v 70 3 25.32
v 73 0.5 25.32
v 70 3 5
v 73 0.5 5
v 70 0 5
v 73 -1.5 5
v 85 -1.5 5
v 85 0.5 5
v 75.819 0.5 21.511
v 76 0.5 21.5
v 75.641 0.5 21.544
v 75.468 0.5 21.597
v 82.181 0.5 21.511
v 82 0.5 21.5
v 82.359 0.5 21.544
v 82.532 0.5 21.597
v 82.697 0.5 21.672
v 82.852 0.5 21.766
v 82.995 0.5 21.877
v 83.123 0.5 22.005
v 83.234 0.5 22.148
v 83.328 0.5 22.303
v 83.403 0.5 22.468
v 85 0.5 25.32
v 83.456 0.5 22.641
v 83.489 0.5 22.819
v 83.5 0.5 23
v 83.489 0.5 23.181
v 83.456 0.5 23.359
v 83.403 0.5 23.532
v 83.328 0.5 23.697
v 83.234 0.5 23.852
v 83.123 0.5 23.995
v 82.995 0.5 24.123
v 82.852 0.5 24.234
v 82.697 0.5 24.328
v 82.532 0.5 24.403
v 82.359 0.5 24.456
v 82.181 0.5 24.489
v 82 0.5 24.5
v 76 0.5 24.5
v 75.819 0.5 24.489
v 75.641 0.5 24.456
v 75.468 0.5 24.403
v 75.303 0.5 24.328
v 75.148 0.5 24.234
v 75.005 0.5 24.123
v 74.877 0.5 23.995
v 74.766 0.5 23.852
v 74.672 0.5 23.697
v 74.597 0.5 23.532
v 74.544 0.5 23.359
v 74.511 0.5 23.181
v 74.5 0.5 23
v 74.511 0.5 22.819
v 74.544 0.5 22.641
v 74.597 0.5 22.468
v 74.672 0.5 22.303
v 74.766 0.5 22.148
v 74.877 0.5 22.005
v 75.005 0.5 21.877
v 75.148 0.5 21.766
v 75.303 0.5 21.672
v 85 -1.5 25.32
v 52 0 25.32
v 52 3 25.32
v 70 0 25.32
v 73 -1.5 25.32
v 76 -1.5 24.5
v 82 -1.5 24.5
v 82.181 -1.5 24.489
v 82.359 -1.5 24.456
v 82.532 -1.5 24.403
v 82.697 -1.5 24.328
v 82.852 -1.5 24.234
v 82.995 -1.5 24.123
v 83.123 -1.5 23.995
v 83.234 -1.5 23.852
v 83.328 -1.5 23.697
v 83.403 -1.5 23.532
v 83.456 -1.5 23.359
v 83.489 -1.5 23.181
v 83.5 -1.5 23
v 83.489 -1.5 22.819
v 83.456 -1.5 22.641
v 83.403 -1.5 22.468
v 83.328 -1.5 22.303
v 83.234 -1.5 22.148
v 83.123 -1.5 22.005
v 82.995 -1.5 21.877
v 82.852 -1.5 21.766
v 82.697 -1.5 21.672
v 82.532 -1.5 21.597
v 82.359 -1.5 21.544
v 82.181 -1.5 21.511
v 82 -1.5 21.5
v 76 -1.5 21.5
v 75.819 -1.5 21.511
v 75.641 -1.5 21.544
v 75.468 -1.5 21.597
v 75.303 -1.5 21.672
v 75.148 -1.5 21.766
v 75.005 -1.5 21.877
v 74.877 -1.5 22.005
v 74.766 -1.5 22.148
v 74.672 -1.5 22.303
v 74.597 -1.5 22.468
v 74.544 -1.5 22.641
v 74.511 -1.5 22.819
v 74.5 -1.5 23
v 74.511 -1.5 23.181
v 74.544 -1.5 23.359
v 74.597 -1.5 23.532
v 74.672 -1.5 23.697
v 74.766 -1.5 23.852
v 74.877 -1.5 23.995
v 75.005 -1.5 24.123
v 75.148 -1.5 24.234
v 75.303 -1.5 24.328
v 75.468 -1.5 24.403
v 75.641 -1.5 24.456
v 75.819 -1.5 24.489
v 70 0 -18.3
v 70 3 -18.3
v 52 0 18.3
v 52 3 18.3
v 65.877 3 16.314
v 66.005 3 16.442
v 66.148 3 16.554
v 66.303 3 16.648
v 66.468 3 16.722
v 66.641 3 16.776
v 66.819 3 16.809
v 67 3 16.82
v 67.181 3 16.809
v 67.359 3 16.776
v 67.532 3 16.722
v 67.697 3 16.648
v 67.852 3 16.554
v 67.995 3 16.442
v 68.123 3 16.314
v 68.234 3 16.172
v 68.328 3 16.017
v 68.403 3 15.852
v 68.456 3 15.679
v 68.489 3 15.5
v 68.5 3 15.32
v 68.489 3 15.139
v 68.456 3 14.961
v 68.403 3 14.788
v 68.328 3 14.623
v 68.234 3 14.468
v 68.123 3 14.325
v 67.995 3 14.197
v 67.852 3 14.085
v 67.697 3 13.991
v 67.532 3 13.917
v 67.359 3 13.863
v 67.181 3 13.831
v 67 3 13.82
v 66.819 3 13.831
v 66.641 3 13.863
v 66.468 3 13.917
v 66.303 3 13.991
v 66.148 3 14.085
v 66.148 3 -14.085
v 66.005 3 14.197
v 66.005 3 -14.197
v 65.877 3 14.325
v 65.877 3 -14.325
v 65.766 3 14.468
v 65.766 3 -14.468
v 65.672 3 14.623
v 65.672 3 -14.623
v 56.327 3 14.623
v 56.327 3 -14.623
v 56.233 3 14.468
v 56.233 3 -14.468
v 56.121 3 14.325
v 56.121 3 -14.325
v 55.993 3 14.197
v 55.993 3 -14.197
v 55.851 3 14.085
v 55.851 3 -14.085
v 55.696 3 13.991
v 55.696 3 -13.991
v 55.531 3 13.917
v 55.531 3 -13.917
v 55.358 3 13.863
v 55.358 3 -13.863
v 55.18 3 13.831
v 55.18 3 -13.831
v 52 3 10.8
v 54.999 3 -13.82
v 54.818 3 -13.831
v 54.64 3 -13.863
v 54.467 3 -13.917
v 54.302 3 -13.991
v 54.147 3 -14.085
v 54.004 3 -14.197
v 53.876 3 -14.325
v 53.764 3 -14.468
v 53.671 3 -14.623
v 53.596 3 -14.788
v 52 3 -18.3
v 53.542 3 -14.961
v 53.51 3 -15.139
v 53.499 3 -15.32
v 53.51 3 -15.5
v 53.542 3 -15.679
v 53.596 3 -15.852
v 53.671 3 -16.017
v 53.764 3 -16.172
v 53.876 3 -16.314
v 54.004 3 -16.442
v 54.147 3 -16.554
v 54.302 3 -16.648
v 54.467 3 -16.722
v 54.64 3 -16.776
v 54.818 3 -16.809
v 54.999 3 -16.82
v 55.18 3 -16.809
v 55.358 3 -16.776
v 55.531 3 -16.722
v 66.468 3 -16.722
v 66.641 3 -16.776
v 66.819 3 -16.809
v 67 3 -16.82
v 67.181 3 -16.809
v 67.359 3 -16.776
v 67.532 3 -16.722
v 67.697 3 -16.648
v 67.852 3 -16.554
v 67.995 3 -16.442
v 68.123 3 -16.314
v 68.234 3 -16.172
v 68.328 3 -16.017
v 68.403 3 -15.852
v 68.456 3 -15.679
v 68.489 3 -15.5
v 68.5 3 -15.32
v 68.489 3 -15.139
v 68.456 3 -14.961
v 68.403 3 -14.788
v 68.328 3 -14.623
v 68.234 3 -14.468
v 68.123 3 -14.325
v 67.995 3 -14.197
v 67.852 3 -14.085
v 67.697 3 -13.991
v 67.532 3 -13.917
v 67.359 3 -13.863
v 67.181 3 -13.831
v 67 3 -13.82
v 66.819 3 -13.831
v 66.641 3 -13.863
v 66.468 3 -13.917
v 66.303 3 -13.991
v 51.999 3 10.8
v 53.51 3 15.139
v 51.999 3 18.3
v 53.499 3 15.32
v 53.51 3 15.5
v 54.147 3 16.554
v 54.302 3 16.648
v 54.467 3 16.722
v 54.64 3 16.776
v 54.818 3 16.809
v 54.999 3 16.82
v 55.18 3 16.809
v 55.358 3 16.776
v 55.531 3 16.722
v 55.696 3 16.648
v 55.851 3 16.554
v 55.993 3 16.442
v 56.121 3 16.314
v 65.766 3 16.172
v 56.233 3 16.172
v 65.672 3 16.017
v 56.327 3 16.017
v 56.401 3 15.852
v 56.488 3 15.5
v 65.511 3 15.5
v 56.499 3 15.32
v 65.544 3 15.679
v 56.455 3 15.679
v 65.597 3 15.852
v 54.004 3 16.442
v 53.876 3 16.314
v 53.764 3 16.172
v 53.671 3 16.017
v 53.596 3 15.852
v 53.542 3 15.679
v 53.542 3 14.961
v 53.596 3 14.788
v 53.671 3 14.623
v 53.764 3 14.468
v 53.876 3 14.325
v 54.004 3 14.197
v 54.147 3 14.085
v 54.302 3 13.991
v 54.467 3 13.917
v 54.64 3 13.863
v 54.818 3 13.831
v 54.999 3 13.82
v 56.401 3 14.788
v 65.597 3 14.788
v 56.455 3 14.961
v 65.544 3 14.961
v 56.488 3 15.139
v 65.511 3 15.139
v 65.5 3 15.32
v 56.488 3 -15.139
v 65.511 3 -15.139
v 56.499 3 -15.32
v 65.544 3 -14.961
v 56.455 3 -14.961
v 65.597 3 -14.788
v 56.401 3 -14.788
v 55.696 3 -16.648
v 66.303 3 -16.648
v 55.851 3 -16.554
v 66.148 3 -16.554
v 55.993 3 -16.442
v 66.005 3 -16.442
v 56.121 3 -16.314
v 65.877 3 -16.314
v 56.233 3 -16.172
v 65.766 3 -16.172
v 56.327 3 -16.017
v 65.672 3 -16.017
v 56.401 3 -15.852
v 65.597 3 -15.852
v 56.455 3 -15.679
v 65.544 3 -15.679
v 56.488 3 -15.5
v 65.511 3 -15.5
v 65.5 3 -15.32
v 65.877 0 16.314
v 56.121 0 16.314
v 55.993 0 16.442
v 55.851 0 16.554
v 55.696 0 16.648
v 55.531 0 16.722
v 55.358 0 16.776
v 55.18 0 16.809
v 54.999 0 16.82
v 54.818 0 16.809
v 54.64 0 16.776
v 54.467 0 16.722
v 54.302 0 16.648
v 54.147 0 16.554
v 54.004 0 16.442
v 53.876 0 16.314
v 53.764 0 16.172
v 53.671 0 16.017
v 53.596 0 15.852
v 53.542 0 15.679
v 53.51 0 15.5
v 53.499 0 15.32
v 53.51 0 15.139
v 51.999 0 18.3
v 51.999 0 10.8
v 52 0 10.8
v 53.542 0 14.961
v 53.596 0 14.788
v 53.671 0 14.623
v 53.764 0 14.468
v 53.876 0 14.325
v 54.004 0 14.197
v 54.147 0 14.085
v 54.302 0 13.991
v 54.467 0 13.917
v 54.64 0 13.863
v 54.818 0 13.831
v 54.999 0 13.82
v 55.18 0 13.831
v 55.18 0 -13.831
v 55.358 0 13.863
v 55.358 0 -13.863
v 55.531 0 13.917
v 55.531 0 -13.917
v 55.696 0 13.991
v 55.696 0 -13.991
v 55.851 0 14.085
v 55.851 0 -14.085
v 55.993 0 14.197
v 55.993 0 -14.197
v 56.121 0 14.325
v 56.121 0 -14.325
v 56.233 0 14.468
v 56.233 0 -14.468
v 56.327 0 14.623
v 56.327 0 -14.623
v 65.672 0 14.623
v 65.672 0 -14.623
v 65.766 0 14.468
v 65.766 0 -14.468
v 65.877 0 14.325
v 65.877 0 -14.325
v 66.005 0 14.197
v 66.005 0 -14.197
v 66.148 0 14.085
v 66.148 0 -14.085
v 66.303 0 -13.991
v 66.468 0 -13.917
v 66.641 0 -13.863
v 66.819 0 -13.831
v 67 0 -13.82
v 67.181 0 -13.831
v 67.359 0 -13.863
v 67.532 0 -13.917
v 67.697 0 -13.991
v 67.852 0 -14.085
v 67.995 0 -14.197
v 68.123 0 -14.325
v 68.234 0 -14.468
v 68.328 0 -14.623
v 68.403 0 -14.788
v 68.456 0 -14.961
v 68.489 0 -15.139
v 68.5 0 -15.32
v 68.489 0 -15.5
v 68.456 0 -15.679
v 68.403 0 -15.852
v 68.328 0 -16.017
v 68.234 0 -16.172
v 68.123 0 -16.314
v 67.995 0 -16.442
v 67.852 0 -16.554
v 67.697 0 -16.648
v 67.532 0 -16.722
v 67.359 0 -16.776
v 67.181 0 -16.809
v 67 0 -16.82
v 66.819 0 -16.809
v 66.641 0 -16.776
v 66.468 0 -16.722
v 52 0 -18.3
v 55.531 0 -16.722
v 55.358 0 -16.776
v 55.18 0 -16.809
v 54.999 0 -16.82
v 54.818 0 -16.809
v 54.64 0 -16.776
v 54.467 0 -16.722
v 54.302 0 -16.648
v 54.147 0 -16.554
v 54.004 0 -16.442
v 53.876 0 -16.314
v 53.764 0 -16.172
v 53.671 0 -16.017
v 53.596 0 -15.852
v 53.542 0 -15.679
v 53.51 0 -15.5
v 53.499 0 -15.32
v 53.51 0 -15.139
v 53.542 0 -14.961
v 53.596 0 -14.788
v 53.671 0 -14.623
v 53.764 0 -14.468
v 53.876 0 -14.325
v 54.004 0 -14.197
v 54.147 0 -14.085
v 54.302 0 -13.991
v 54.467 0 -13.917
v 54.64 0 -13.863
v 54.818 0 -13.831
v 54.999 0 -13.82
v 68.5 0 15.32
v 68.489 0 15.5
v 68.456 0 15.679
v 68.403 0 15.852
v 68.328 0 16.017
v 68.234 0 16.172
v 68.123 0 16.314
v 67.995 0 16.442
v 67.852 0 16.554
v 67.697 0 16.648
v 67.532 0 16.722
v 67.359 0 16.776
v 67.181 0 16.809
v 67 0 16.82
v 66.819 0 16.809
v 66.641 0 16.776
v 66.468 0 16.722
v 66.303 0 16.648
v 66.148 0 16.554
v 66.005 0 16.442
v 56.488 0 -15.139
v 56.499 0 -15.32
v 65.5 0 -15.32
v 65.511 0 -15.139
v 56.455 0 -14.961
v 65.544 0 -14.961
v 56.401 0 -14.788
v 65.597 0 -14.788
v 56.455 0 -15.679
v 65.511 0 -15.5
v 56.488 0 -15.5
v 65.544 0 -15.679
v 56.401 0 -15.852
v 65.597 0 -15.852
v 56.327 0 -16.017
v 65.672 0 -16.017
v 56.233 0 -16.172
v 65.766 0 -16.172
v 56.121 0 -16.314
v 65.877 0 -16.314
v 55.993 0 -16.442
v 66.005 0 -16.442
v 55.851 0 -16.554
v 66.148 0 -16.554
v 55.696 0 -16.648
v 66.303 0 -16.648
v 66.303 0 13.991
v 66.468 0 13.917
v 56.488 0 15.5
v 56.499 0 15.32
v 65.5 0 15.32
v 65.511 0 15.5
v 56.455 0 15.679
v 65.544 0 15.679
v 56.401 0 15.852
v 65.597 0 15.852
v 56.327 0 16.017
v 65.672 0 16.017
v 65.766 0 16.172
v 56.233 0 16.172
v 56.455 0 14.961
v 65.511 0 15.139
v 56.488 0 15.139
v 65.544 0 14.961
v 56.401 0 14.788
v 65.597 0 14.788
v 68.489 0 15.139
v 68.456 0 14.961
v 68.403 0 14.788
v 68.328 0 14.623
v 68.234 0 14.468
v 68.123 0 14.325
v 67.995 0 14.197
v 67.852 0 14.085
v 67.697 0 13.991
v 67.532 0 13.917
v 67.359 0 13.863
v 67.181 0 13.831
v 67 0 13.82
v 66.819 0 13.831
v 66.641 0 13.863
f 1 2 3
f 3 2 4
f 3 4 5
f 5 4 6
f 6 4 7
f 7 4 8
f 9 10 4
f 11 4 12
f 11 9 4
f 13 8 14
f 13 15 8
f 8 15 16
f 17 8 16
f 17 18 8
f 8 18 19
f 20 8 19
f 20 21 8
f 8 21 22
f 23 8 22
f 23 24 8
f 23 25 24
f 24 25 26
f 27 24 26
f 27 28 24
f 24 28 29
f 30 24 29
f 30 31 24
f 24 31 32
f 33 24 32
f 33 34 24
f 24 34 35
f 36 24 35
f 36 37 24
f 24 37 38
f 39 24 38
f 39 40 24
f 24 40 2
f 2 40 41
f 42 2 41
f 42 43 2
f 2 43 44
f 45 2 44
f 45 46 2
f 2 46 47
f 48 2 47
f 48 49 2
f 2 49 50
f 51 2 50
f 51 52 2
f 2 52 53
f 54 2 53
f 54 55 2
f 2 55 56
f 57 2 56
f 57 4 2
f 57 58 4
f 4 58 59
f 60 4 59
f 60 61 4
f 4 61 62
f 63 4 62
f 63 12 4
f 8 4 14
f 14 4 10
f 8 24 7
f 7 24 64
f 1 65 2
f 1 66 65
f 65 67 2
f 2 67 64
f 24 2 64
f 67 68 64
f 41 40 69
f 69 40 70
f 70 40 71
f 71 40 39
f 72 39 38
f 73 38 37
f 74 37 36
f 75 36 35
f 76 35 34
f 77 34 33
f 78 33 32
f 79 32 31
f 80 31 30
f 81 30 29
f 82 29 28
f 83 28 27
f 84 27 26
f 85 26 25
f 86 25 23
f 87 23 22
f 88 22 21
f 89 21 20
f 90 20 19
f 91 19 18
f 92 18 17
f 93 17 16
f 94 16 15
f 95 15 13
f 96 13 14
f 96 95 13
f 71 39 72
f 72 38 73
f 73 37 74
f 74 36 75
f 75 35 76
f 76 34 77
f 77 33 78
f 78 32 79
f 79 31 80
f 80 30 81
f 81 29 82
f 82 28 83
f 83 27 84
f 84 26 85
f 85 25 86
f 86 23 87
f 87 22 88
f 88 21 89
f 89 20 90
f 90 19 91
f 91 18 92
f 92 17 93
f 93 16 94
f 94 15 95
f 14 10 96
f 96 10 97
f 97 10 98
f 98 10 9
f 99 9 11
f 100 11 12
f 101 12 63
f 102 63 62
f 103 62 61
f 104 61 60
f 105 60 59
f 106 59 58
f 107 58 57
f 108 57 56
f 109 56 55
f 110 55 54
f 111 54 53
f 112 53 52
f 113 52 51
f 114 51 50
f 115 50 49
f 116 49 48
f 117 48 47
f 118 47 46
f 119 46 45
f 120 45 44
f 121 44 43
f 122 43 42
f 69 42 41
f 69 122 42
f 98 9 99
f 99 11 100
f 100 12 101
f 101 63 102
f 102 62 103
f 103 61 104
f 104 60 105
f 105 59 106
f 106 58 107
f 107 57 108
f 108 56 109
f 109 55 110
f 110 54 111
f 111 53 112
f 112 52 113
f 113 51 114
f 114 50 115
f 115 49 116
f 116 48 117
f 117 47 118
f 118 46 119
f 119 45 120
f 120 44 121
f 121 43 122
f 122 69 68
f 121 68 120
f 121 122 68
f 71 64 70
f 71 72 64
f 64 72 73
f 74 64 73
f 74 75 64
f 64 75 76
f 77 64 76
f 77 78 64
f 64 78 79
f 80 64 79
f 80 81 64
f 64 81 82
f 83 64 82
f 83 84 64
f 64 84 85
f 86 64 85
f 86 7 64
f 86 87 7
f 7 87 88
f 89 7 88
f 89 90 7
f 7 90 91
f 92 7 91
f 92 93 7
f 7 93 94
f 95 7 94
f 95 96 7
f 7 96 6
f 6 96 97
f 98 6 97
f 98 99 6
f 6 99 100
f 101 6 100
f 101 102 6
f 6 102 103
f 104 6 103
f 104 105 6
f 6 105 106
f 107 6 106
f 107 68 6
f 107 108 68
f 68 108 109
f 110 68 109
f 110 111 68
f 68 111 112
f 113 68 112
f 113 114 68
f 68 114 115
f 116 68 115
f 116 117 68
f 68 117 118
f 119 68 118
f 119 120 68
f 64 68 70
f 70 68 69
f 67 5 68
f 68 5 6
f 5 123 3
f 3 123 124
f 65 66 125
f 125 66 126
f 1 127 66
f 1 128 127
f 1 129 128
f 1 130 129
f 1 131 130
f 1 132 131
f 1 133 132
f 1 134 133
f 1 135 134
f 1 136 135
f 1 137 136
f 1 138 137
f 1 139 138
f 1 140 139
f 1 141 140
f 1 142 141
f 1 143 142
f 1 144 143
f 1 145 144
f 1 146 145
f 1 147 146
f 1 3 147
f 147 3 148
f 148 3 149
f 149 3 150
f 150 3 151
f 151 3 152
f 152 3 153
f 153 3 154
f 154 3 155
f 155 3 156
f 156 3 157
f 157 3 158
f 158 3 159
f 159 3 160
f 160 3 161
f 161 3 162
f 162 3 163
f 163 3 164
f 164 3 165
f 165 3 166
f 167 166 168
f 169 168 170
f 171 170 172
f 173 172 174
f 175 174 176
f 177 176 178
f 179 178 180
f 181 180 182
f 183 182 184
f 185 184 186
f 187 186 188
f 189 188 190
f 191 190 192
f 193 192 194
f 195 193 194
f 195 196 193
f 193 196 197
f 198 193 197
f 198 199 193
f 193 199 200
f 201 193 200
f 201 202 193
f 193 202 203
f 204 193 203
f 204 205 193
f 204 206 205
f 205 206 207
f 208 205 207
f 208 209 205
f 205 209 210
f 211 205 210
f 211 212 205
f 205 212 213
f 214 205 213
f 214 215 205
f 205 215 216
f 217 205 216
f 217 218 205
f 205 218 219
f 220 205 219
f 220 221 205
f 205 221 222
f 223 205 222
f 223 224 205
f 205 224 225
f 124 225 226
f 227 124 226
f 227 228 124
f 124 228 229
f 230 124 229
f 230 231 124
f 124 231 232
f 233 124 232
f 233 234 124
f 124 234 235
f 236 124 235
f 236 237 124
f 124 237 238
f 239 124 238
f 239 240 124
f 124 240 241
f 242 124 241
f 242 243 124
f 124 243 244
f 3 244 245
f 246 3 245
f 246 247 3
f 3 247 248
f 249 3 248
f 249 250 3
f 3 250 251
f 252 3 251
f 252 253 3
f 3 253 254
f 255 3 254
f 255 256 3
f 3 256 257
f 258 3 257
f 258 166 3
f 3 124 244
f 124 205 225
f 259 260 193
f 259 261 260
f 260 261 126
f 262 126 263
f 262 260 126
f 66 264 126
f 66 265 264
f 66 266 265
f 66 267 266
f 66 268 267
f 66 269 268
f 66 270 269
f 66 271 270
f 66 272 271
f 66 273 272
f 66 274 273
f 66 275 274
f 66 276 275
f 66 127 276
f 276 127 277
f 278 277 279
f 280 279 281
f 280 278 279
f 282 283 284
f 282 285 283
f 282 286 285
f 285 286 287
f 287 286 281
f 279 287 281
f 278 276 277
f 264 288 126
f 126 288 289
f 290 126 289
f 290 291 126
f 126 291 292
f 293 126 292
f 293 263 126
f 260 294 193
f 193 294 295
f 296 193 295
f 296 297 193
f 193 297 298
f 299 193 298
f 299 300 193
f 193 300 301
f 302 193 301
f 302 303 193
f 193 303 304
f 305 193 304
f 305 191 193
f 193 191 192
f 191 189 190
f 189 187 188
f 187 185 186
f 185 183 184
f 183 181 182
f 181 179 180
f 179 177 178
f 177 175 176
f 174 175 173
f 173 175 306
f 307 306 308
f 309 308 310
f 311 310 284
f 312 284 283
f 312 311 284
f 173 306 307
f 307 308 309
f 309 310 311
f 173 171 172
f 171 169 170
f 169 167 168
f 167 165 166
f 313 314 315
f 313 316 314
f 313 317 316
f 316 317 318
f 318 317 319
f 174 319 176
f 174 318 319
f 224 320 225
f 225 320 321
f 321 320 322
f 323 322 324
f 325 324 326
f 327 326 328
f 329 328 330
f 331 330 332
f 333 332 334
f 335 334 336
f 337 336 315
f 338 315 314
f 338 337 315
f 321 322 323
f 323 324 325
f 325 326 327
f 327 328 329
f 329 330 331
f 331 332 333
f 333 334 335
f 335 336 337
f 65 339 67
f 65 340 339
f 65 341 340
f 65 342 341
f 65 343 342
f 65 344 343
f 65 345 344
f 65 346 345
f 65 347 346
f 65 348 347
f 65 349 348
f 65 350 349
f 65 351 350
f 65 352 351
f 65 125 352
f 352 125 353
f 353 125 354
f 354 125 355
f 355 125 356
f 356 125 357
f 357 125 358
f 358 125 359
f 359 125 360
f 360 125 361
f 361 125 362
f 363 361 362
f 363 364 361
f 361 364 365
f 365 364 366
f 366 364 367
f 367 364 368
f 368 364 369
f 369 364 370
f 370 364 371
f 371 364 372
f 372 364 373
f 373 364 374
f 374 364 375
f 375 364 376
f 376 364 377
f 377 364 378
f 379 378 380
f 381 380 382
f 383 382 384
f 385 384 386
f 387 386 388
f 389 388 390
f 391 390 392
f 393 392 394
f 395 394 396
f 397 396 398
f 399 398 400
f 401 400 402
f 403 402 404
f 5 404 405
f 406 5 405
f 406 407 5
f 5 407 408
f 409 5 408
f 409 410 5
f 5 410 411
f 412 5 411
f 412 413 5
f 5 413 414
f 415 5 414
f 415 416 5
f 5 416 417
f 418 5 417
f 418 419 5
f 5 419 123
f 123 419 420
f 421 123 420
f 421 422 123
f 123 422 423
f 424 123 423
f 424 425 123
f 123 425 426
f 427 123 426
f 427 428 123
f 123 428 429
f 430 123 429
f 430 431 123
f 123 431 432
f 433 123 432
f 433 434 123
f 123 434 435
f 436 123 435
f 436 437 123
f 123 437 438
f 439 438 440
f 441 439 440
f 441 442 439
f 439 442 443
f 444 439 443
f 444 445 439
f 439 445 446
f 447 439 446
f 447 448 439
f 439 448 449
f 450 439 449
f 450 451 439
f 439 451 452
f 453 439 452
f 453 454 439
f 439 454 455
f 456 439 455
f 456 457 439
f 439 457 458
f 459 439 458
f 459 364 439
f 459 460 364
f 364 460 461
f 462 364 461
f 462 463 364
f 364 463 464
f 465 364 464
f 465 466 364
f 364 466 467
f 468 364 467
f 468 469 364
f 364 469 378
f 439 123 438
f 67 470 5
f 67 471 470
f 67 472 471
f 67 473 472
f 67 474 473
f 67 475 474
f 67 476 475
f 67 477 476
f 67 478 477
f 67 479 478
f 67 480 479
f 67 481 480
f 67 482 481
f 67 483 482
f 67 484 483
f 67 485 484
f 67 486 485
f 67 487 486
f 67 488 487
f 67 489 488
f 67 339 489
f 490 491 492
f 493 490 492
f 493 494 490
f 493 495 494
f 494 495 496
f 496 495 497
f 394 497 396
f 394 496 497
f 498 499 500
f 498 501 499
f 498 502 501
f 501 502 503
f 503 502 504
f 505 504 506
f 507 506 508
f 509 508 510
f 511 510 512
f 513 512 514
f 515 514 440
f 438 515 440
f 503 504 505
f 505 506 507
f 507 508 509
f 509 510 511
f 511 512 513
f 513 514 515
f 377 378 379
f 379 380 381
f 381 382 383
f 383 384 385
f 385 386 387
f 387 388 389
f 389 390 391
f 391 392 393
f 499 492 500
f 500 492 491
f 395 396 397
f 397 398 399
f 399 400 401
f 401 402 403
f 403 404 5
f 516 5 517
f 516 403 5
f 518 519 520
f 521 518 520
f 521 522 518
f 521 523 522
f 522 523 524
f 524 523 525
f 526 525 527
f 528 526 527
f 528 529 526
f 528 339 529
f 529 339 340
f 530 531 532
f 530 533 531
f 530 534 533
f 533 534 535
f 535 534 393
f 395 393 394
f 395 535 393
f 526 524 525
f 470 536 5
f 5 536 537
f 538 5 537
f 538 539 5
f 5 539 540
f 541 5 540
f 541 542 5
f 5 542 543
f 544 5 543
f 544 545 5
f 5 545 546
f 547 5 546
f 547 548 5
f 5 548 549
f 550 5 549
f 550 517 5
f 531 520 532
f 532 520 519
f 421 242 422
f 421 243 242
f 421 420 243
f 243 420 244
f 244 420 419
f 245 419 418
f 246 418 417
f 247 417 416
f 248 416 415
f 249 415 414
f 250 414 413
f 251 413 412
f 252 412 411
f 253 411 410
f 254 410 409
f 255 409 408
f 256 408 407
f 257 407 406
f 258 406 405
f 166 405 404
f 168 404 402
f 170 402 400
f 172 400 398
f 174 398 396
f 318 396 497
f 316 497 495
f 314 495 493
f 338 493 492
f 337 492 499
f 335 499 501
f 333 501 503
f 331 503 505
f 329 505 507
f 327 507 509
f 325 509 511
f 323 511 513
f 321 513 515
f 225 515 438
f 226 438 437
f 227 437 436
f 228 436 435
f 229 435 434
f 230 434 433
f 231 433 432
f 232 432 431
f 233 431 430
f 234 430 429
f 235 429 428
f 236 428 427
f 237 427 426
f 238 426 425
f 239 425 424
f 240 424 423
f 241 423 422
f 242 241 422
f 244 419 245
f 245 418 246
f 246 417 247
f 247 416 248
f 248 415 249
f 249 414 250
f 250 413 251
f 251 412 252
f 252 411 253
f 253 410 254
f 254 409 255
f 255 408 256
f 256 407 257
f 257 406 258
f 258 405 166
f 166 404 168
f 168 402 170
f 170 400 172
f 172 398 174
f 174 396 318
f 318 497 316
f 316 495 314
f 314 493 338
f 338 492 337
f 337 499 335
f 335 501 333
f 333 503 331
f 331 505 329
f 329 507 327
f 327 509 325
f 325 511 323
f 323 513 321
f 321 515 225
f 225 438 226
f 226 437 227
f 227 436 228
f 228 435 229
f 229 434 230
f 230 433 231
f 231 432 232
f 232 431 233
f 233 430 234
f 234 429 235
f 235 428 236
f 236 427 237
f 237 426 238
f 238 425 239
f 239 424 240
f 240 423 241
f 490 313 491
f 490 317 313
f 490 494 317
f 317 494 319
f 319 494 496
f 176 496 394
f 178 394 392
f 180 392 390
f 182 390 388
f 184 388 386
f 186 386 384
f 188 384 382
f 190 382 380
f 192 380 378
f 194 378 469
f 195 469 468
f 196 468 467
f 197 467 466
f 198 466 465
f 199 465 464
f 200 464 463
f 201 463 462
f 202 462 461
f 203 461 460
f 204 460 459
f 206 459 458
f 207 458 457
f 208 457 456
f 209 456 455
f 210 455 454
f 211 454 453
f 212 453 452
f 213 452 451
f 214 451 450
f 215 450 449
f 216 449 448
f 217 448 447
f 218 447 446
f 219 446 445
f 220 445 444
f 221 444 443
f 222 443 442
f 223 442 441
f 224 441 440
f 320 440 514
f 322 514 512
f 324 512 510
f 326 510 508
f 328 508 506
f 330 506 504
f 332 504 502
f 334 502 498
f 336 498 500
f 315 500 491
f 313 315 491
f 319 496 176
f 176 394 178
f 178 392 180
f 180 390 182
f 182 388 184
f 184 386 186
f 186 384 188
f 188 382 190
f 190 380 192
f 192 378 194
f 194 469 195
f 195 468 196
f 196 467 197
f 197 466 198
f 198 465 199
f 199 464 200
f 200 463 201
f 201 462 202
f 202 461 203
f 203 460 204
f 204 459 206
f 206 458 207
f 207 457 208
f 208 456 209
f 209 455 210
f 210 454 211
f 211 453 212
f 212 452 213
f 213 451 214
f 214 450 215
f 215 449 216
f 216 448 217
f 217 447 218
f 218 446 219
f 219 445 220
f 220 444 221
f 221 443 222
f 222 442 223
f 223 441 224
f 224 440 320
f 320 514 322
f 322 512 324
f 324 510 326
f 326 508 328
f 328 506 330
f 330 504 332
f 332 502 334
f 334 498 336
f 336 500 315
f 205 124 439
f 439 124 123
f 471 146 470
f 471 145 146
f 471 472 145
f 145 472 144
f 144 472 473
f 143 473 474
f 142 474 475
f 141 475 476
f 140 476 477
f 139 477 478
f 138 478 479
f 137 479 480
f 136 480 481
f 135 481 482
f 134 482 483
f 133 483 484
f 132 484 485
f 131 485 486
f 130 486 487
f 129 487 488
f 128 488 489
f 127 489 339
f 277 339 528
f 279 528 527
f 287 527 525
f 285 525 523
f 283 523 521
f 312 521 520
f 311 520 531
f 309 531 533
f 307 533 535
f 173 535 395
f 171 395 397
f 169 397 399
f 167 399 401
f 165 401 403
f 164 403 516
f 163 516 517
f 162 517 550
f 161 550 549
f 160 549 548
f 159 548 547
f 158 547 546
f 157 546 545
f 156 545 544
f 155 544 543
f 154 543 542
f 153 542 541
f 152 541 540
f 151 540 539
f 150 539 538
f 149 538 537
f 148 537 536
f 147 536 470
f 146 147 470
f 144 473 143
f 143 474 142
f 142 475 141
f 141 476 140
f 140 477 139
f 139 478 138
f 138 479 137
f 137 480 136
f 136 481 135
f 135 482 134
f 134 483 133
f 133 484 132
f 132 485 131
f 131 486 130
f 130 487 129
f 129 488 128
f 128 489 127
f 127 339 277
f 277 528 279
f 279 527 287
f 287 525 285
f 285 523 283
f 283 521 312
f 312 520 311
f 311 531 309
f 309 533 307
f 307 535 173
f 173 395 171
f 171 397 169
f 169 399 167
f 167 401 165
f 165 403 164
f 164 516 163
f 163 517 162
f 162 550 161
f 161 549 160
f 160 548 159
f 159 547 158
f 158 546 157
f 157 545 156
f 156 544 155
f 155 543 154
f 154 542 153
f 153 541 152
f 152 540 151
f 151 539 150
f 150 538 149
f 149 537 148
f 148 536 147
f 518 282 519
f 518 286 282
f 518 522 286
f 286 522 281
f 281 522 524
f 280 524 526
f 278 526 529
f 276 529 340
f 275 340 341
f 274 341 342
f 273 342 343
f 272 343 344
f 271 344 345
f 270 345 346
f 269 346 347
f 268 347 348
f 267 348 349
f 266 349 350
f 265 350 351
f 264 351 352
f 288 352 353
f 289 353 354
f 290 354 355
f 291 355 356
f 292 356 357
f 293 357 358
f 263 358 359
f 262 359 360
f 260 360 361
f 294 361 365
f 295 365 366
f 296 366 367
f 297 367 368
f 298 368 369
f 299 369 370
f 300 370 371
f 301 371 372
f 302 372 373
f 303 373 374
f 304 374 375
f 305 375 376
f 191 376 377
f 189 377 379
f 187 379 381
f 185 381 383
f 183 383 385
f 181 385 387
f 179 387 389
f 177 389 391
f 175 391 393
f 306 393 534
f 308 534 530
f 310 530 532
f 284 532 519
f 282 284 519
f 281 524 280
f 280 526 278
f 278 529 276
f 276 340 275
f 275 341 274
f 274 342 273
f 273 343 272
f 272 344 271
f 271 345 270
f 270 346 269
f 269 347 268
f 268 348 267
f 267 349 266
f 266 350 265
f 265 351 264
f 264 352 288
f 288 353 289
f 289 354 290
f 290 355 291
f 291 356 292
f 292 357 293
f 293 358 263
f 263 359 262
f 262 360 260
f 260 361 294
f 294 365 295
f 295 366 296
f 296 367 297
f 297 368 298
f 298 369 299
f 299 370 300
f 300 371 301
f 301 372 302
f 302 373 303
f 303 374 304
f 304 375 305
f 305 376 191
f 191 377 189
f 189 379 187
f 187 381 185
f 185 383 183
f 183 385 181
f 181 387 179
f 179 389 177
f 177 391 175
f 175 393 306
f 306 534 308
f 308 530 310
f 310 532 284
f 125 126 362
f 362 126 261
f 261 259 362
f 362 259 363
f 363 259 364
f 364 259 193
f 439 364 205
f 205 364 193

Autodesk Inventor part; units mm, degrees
sketch "Sketch1" plane through (0, 0, 0) normal (0, 1, 0) x (-1, 0, 0)
  line L0 (70, 0) -> (70, -70)
  line L1 (70, -70) -> (0, -70)
  line L2 (-70, 0) -> (-70, 70)
  line L3 (-70, 70) -> (0, 70)
  line L4 (0, 70) -> (70, 70)
  line L5 (70, 70) -> (70, 0)
  line L6 (0, -70) -> (-70, -70)
  line L7 (-70, -70) -> (-70, 0)
  point P0 (0, 0)
extrude "Extrusion1" add sketch "Sketch1" along normal blind 3
fillet "Fillet1" radius 5 3 edges at (70, 1.5, 70) (70, 1.5, -70) (-70, 1.5, 70)
fillet "Fillet2" radius 5 1 edges at (-70, 1.5, -70)
ref_plane "Work Plane1" through (65, 0, 65) normal (1, 0, 0) x (0, 0, -1)
sketch "Sketch6" plane through (70, 0, 65) normal (1, 0, 0) x (0, 0, -1)
  line L0 (65, 0) -> (57.2, 0)
  line L1 (130, 0) -> (0, 0) projected
  line L2 (65, 0) -> (72.8, 0)
  line L3 (57.2, 0) -> (57.2, -18)
  line L4 (72.8, 0) -> (72.8, -18)
  line L5 (65, 0) -> (65, -10)
  arc A0 (57.2, -18) -> (72.8, -18) centre (65, -10.2437) ccw
  line L6 (57.2, 0) -> (54.2, 0)
  line L7 (54.2, 0) -> (54.2, -18)
  line L8 (72.8, 0) -> (75.8, 0)
  line L9 (75.8, 0) -> (75.8, -18)
  arc A1 (54.2, -18) -> (75.8, -18) centre (65, -9.0916) ccw
  dimension "d17" = 18
  dimension "d21" = 3
  dimension "d22" = 3
extrude "Extrusion3" add sketch "Sketch6" against normal blind 18 contours L3 A0 L4 L1 L9 A1 L7
pattern_circular "Circular Pattern1" count 4 over 360 about axis through (0, -10, 0) along (0, 1, 0) of "Extrusion3"
sketch "Sketch8" plane through (0, 3, 0) normal (0, 1, 0) x (1, 0, 0)
  circle A0 centre (58.4636, -19.348) radius 2.5
  point P0 (0, 0)
  dimension "d35" = 5
extrude "Extrusion5" cut sketch "Sketch8" against normal blind 3
sketch "Sketch9" plane through (0, 3, 0) normal (0, 1, 0) x (1, 0, 0)
  circle A0 centre (-60.6489, 18.9578) radius 2.5
  point P0 (0, 0)
  dimension "d39" = 5
extrude "Extrusion6" cut sketch "Sketch9" against normal blind 3
sketch "Sketch10" plane through (0, 3, 0) normal (0, 1, 0) x (1, 0, 0)
  line L0 (70, -65) -> (70, 65) projected
  line L1 (70, 15.1257) -> (39.2687, 15.1257)
  line L2 (39.2687, 15.1257) -> (39.2687, -15.3197)
  line L3 (39.2687, -15.3197) -> (70, -15.3197)
  line L4 (70, -15.3197) -> (70, 15.1257)
  point P0 (0, 0)
extrude "Extrusion7" add sketch "Sketch10" along normal blind 10
sketch "Sketch12" plane through (0, 3, 0) normal (0, 1, 0) x (1, 0, 0)
  line L0 (39.2687, -15.3197) -> (39.2687, -70)
  line L1 (10.8, -70) -> (65, -70) projected
  line L2 (39.2687, -15.3197) -> (39.2687, 15.1257) projected
  line L3 (39.2687, -70) -> (-73.9803, -70)
  line L4 (-73.9803, -70) -> (-73.9803, 75.2408)
  line L5 (-73.9803, 75.2408) -> (39.2687, 75.2408)
  line L6 (39.2687, 75.2408) -> (39.2687, -70)
  point P0 (0, 0)
extrude "Extrusion8" cut sketch "Sketch12" against normal blind 100
sketch "Sketch13" plane through (0, 3, 0) normal (0, 1, 0) x (1, 0, 0)
  line L0 (39.2687, -15.3197) -> (74.5621, -15.3197)
  line L1 (74.5621, -15.3197) -> (74.5621, -76.2104)
  line L2 (74.5621, -76.2104) -> (39.2687, -76.2104)
  line L3 (39.2687, -76.2104) -> (39.2687, -15.3197)
  point P0 (0, 0)
extrude "Extrusion9" cut sketch "Sketch13" against normal blind 100
sketch "Sketch14" plane through (0, 3, 0) normal (0, 1, 0) x (1, 0, 0)
  line L0 (39.2687, 15.1257) -> (72.3919, 15.1257)
  line L1 (72.3919, 15.1257) -> (72.3919, 74.5163)
  line L2 (72.3919, 74.5163) -> (39.2687, 74.5163)
  line L3 (39.2687, 74.5163) -> (39.2687, 15.1257)
  point P0 (0, 0)
extrude "Extrusion10" cut sketch "Sketch14" against normal blind 100
sketch "Sketch17" plane through (70, -18, 10.8) normal (1, 0, 0) x (0, 0, -1)
  line L0 (-4.5197, 18) -> (-4.5197, 21)
  line L1 (-4.5197, 18) -> (-4.5197, 31) projected
  line L2 (-4.5197, 21) -> (25.9257, 21)
  line L3 (25.9257, 31) -> (25.9257, 18) projected
  line L4 (25.9257, 21) -> (-4.5197, 21)
  line L5 (-4.5197, 21) -> (-4.5197, 31)
  line L6 (-4.5197, 31) -> (25.9257, 31)
  line L7 (25.9257, 31) -> (25.9257, 21)
  point P0 (10.8, 18)
  dimension "d50" = 3
extrude "Extrusion11" cut sketch "Sketch17" against normal blind 100
sketch "Sketch18" plane through (39.2687, 0, -15.1257) normal (-1, 0, 0) x (0, 0, 1)
  line L0 (0, 3) -> (30.4454, 3)
  line L1 (30.4454, 3) -> (30.4454, 0)
  line L2 (30.4454, 0) -> (0, 0)
  line L3 (0, 0) -> (0, 3)
  point P0 (15.1257, 0)
extrude "Extrusion12" cut sketch "Sketch18" against normal blind 13
sketch "Sketch20" plane through (52, 0, 65) normal (-1, 0, 0) x (0, 0, 1)
  line L0 (-72.8, -18) -> (-72.8, 0) projected
  line L1 (-72.8, -9) -> (-57.2, -9)
  line L2 (-57.2, -18) -> (-57.2, 0) projected
  line L3 (-72.8, -18) -> (-72.8, -4)
  arc A0 (-72.8, -18) -> (-57.2, -18) centre (-65, -10.2437) ccw projected
  line L4 (-65, -21.2437) -> (-72.8, -21.2437)
  line L5 (-72.8, -4) -> (-72.8, -0.8)
  line L6 (-65, -21.2437) -> (-65, -3.2437)
  line L7 (-65, -21.2437) -> (-65, -11.2437)
  line L8 (-65, -11.2437) -> (-65, -1.2437)
  line L9 (-65, -1.2437) -> (-65, -0.8)
  arc A1 (-65, -0.8) -> (-72.6527, -4.1368) centre (-65, -11.2437) ccw
  arc A2 (-57.2, -4.2988) -> (-65, -0.8) centre (-65, -11.2437) ccw
  arc A3 (-72.6527, -4.1368) -> (-72.8, -4.2988) centre (-65, -11.2437) ccw
  arc A4 (-57.2, -4.2988) -> (-57.2, -4.2988) centre (-65, -11.2437) ccw
  line L10 (-72.8, -4.2988) -> (-72.8, 0)
  line L11 (-57.2, 0) -> (-57.2, -4.2988)
  line L12 (-57.2, 0) -> (-72.8, 0) projected
  line L13 (-57.2, -4.2988) -> (-57.2, 0)
  line L14 (-72.8, -4.2988) -> (-72.8, 0)
  line L15 (-72.8, 0) -> (-57.2, 0)
  point P0 (-65, 0)
  dimension "d55" = 14
  dimension "d56" = 3.2
  dimension "d57" = 18
  dimension "d58" = 10
  dimension "d59" = 10
extrude "Extrusion13" add sketch "Sketch20" against normal blind 18 contours L0 L12 L2 A2 A1 A3
sketch "Sketch22" plane through (52.2687, 0, 10.8) normal (0, 1, 0) x (1, 0, 0)
  line L0 (-0.2687, 21.6) -> (0, 21.6)
  line L1 (0, 21.6) -> (0, 0)
  line L2 (0, 0) -> (-0.2687, 0)
  line L3 (-0.2687, 0) -> (-0.2687, 21.6)
  point P0 (-52.2687, 10.8)
extrude "Extrusion14" add sketch "Sketch22" along normal blind 3
sketch "Sketch24" plane through (52.2687, 0, -15.1257) normal (-1, 0, 0) x (0, 0, 1)
  line L0 (30.4454, 3) -> (25.9257, 3)
  line L1 (25.9257, 3) -> (25.9257, 0)
  line L2 (25.9257, 0) -> (30.4454, 0)
  line L3 (30.4454, 0) -> (30.4454, 3)
  point P0 (15.1257, 0)
extrude "Extrusion16" add sketch "Sketch24" along normal blind 0.3
sketch "Sketch25" plane through (52.2687, 0, -15.1257) normal (-1, 0, 0) x (0, 0, 1)
  line L0 (0, 0) -> (4.3257, 0)
  line L1 (4.3257, 0) -> (4.3257, 3)
  line L2 (4.3257, 3) -> (0, 3)
  line L3 (0, 3) -> (0, 0)
  point P0 (15.1257, 0)
extrude "Extrusion17" add sketch "Sketch25" along normal blind 0.27
sketch "Sketch26" plane through (51.9687, 0, -15.1257) normal (-1, 0, 0) x (0, 0, 1)
  line L0 (30.4454, 3) -> (25.9257, 3)
  line L1 (25.9257, 3) -> (25.9257, 0)
  line L2 (25.9257, 0) -> (30.4454, 0)
  line L3 (30.4454, 0) -> (30.4454, 3)
  point P0 (15.1257, 0)
extrude "Extrusion18" cut sketch "Sketch26" against normal blind 0.03
sketch "Sketch27" plane through (70, 0, 15.3197) normal (0, 0, 1) x (1, 0, 0)
  line L0 (0, 3) -> (-18, 3)
  line L1 (-18, 3) -> (-18, 0)
  line L2 (-18, 0) -> (0, 0)
  line L3 (0, 0) -> (0, 3)
  point P0 (-70, 0)
extrude "Extrusion19" add sketch "Sketch27" along normal blind 3
sketch "Sketch32" plane through (51.9987, 0, -15.1257) normal (-1, 0, 0) x (0, 0, 1)
  line L0 (4.3257, 0) -> (-3, 0)
  line L1 (-3, 0) -> (-3, 3)
  line L2 (-3, 3) -> (4.3257, 3)
  line L3 (4.3257, 3) -> (4.3257, 0)
  point P0 (15.1257, 0)
extrude "Extrusion21" cut sketch "Sketch32" against normal blind 30
sketch "Sketch33" plane through (51.9987, 0, -15.1257) normal (-1, 0, 0) x (0, 0, 1)
  line L0 (33.4454, 0) -> (25.9257, 0) projected
  line L1 (25.9257, 3) -> (33.4257, 3)
  line L2 (33.4257, 3) -> (33.4257, 0)
  line L3 (33.4257, 0) -> (25.9257, 0)
  line L4 (25.9257, 0) -> (25.9257, 3)
  point P0 (15.1257, 0)
  dimension "d86" = 7.5
extrude "Extrusion22" add sketch "Sketch33" against normal blind 18
sketch "Sketch34" plane through (52, 3, -10.8) normal (0, 1, 0) x (1, 0, 0)
  line L0 (18, -29.1197) -> (18, -26.1197)
  line L1 (18, -29.1197) -> (18, -21.6) projected
  line L2 (18, -26.1197) -> (-0.0013, -26.1197)
  line L3 (-0.0013, -29.1) -> (-0.0013, -21.6) projected
  line L4 (-0.0013, -26.1197) -> (2.9987, -26.1197)
  line L5 (18, -26.1197) -> (15, -26.1197)
  circle A0 centre (15, -26.1197) radius 1.5
  circle A1 centre (2.9987, -26.1197) radius 1.5
  point P0 (-52, -10.8)
  dimension "d89" = 3
  dimension "d90" = 3
  dimension "d91" = 3
  dimension "d92" = 3
  dimension "d93" = 3
extrude "Extrusion23" cut sketch "Sketch34" against normal blind 18
sketch "Sketch35" plane through (70, -18, -10.8) normal (0, 0, -1) x (-1, 0, 0)
  line L0 (18, 21) -> (0, 21)
  line L1 (0, 21) -> (0, 18)
  line L2 (0, 18) -> (18, 18)
  line L3 (18, 18) -> (18, 21)
  point P0 (70, 18)
extrude "Extrusion24" add sketch "Sketch35" along normal blind 7.5
mirror "Mirror1" about plane through (0, 0, 0) normal (0, 0, 1) of "Extrusion23"
ref_plane "Work Plane2" through (0, 0, 0) normal (0, 1, 0) x (-1, 0, 0)
sketch "Sketch38" plane through (0, 0, 0) normal (0, 1, 0) x (-1, 0, 0)
  line L0 (-70, -18.3) -> (-51.9987, -18.3)
  line L1 (-51.9987, -18.3) -> (-51.9987, 18.3)
  line L2 (-51.9987, 18.3) -> (-70, 18.3)
  line L3 (-70, 18.3) -> (-70, -18.3)
  point P0 (0, 0)
extrude "Extrusion25" cut sketch "Sketch38" against normal blind 30
sketch "Sketch39" plane through (70, 0, 18.3197) normal (0, 0, 1) x (1, 0, 0)
  line L0 (0, 0) -> (-18, 0)
  line L1 (-18, 0) -> (-18, 3)
  line L2 (-18, 3) -> (0, 3)
  line L3 (0, 3) -> (0, 0)
  point P0 (-70, 0)
extrude "Extrusion26" add sketch "Sketch39" along normal blind 10
ref_plane "Work Plane3" through (70, 0, 24.3197) normal (0, 0, 1) x (1, 0, 0)
ref_plane "Work Plane4" through (70, 0, 14.3197) normal (0, 0, 1) x (1, 0, 0)
sketch "Sketch43" plane through (70, 0, 28.3197) normal (0, 0, 1) x (1, 0, 0)
  line L0 (0, 0) -> (-18, 0)
  line L1 (-18, 0) -> (-18, 3)
  line L2 (-18, 3) -> (0, 3)
  line L3 (0, 3) -> (0, 0)
  point P0 (-70, 0)
extrude "Extrusion27" cut sketch "Sketch43" against normal blind 3
sketch "Sketch44" plane through (70, 0, -18.3) normal (1, 0, 0) x (0, 0, -1)
  line L0 (-18.3, 0) -> (-23.3, 0)
  line L1 (-43.6197, 0) -> (0, 0) projected
  line L2 (-23.3, 0) -> (-43.6197, 0)
  line L3 (-43.6197, 0) -> (-43.6197, 3)
  line L4 (-43.6197, 3) -> (-23.3, 3)
  line L5 (-23.3, 3) -> (-23.3, 0)
  dimension "d116" = 5
ref_plane "Work Plane7" through (0, 0, 5) normal (0, 0, 1) x (1, 0, 0)
sketch "Sketch45" plane through (0, 0, 5) normal (0, 0, 1) x (1, 0, 0)
  line L0 (70, 3) -> (70, 1.5)
  line L1 (70, 1.5) -> (73, 1.5)
  line L2 (73, 1.5) -> (70, 3)
  line L3 (70, 0) -> (70, -1.5)
  line L4 (70, -1.5) -> (73, -1.5)
  line L5 (70, 0) -> (73, -1.5)
  line L6 (73, 0) -> (70, 1.5)
  point P0 (0, 0)
  dimension "d118" = 1.5
  dimension "d119" = 3
  dimension "d120" = 1.5
  dimension "d121" = 3
  dimension "d122" = 1.5
sweep "Sweep2" add profiles "Sketch44" path "Sketch45" path curves L6
sketch "Sketch46" plane through (73, -1.5, 5) normal (1, 0, 0) x (0, 0, -1)
  line L0 (-20.3197, 1.5) -> (-20.3197, 4.5) projected
  line L1 (0, 0) -> (-20.3197, 0)
  line L2 (-20.3197, 0) -> (-20.3197, 3)
  line L3 (-20.3197, 3) -> (0, 3)
  line L4 (0, 3) -> (0, 0)
  point P0 (5, 1.5)
extrude "Extrusion28" add sketch "Sketch46" along normal blind 12
sketch "Sketch47" plane through (73, -1.5, 5) normal (0, -1, 0) x (1, 0, 0)
  line L0 (12, 0) -> (12, 18)
  line L1 (12, 0) -> (12, 20.3197) projected
  line L2 (12, 18) -> (3, 18)
  arc A0 (3, 19.5) -> (3, 16.5) centre (3, 18) ccw
  line L3 (3, 16.5) -> (9, 16.5)
  line L4 (9, 16.5) -> (9, 18)
  arc A1 (9, 16.5) -> (9, 19.5) centre (9, 18) ccw
  line L5 (9, 19.5) -> (3, 19.5)
  point P0 (-73, -5)
  dimension "d127" = 18
  dimension "d128" = 9
  dimension "d129" = 1.5
  dimension "d130" = 6
extrude "Extrusion29" cut sketch "Sketch47" against normal blind 12
sketch "Sketch48" plane through (73, 1.5, 25.3197) normal (0, 1, 0) x (1, 0, 0)
  line L0 (12, 20.3197) -> (0, 20.3197)
  line L1 (0, 20.3197) -> (0, 0)
  line L2 (0, 0) -> (12, 0)
  line L3 (12, 0) -> (12, 20.3197)
  point P0 (-73, 25.3197)
extrude "Extrusion30" cut sketch "Sketch48" against normal blind 1
sketch "Sketch49" plane through (70, 0, 5) normal (0, 0, -1) x (-1, 0, 0)
  line L0 (0, 3) -> (-3, 0.5)
  line L1 (-3, 0.5) -> (-3, 1.5)
  line L2 (-3, 1.5) -> (-3, 0.5) projected
  line L3 (-3, 1.5) -> (0, 3)
  line L4 (0, 3) -> (-3, 1.5) projected
  point P0 (70, 0)
extrude "Extrusion31" cut sketch "Sketch49" against normal blind 25
properties part number "holder"
